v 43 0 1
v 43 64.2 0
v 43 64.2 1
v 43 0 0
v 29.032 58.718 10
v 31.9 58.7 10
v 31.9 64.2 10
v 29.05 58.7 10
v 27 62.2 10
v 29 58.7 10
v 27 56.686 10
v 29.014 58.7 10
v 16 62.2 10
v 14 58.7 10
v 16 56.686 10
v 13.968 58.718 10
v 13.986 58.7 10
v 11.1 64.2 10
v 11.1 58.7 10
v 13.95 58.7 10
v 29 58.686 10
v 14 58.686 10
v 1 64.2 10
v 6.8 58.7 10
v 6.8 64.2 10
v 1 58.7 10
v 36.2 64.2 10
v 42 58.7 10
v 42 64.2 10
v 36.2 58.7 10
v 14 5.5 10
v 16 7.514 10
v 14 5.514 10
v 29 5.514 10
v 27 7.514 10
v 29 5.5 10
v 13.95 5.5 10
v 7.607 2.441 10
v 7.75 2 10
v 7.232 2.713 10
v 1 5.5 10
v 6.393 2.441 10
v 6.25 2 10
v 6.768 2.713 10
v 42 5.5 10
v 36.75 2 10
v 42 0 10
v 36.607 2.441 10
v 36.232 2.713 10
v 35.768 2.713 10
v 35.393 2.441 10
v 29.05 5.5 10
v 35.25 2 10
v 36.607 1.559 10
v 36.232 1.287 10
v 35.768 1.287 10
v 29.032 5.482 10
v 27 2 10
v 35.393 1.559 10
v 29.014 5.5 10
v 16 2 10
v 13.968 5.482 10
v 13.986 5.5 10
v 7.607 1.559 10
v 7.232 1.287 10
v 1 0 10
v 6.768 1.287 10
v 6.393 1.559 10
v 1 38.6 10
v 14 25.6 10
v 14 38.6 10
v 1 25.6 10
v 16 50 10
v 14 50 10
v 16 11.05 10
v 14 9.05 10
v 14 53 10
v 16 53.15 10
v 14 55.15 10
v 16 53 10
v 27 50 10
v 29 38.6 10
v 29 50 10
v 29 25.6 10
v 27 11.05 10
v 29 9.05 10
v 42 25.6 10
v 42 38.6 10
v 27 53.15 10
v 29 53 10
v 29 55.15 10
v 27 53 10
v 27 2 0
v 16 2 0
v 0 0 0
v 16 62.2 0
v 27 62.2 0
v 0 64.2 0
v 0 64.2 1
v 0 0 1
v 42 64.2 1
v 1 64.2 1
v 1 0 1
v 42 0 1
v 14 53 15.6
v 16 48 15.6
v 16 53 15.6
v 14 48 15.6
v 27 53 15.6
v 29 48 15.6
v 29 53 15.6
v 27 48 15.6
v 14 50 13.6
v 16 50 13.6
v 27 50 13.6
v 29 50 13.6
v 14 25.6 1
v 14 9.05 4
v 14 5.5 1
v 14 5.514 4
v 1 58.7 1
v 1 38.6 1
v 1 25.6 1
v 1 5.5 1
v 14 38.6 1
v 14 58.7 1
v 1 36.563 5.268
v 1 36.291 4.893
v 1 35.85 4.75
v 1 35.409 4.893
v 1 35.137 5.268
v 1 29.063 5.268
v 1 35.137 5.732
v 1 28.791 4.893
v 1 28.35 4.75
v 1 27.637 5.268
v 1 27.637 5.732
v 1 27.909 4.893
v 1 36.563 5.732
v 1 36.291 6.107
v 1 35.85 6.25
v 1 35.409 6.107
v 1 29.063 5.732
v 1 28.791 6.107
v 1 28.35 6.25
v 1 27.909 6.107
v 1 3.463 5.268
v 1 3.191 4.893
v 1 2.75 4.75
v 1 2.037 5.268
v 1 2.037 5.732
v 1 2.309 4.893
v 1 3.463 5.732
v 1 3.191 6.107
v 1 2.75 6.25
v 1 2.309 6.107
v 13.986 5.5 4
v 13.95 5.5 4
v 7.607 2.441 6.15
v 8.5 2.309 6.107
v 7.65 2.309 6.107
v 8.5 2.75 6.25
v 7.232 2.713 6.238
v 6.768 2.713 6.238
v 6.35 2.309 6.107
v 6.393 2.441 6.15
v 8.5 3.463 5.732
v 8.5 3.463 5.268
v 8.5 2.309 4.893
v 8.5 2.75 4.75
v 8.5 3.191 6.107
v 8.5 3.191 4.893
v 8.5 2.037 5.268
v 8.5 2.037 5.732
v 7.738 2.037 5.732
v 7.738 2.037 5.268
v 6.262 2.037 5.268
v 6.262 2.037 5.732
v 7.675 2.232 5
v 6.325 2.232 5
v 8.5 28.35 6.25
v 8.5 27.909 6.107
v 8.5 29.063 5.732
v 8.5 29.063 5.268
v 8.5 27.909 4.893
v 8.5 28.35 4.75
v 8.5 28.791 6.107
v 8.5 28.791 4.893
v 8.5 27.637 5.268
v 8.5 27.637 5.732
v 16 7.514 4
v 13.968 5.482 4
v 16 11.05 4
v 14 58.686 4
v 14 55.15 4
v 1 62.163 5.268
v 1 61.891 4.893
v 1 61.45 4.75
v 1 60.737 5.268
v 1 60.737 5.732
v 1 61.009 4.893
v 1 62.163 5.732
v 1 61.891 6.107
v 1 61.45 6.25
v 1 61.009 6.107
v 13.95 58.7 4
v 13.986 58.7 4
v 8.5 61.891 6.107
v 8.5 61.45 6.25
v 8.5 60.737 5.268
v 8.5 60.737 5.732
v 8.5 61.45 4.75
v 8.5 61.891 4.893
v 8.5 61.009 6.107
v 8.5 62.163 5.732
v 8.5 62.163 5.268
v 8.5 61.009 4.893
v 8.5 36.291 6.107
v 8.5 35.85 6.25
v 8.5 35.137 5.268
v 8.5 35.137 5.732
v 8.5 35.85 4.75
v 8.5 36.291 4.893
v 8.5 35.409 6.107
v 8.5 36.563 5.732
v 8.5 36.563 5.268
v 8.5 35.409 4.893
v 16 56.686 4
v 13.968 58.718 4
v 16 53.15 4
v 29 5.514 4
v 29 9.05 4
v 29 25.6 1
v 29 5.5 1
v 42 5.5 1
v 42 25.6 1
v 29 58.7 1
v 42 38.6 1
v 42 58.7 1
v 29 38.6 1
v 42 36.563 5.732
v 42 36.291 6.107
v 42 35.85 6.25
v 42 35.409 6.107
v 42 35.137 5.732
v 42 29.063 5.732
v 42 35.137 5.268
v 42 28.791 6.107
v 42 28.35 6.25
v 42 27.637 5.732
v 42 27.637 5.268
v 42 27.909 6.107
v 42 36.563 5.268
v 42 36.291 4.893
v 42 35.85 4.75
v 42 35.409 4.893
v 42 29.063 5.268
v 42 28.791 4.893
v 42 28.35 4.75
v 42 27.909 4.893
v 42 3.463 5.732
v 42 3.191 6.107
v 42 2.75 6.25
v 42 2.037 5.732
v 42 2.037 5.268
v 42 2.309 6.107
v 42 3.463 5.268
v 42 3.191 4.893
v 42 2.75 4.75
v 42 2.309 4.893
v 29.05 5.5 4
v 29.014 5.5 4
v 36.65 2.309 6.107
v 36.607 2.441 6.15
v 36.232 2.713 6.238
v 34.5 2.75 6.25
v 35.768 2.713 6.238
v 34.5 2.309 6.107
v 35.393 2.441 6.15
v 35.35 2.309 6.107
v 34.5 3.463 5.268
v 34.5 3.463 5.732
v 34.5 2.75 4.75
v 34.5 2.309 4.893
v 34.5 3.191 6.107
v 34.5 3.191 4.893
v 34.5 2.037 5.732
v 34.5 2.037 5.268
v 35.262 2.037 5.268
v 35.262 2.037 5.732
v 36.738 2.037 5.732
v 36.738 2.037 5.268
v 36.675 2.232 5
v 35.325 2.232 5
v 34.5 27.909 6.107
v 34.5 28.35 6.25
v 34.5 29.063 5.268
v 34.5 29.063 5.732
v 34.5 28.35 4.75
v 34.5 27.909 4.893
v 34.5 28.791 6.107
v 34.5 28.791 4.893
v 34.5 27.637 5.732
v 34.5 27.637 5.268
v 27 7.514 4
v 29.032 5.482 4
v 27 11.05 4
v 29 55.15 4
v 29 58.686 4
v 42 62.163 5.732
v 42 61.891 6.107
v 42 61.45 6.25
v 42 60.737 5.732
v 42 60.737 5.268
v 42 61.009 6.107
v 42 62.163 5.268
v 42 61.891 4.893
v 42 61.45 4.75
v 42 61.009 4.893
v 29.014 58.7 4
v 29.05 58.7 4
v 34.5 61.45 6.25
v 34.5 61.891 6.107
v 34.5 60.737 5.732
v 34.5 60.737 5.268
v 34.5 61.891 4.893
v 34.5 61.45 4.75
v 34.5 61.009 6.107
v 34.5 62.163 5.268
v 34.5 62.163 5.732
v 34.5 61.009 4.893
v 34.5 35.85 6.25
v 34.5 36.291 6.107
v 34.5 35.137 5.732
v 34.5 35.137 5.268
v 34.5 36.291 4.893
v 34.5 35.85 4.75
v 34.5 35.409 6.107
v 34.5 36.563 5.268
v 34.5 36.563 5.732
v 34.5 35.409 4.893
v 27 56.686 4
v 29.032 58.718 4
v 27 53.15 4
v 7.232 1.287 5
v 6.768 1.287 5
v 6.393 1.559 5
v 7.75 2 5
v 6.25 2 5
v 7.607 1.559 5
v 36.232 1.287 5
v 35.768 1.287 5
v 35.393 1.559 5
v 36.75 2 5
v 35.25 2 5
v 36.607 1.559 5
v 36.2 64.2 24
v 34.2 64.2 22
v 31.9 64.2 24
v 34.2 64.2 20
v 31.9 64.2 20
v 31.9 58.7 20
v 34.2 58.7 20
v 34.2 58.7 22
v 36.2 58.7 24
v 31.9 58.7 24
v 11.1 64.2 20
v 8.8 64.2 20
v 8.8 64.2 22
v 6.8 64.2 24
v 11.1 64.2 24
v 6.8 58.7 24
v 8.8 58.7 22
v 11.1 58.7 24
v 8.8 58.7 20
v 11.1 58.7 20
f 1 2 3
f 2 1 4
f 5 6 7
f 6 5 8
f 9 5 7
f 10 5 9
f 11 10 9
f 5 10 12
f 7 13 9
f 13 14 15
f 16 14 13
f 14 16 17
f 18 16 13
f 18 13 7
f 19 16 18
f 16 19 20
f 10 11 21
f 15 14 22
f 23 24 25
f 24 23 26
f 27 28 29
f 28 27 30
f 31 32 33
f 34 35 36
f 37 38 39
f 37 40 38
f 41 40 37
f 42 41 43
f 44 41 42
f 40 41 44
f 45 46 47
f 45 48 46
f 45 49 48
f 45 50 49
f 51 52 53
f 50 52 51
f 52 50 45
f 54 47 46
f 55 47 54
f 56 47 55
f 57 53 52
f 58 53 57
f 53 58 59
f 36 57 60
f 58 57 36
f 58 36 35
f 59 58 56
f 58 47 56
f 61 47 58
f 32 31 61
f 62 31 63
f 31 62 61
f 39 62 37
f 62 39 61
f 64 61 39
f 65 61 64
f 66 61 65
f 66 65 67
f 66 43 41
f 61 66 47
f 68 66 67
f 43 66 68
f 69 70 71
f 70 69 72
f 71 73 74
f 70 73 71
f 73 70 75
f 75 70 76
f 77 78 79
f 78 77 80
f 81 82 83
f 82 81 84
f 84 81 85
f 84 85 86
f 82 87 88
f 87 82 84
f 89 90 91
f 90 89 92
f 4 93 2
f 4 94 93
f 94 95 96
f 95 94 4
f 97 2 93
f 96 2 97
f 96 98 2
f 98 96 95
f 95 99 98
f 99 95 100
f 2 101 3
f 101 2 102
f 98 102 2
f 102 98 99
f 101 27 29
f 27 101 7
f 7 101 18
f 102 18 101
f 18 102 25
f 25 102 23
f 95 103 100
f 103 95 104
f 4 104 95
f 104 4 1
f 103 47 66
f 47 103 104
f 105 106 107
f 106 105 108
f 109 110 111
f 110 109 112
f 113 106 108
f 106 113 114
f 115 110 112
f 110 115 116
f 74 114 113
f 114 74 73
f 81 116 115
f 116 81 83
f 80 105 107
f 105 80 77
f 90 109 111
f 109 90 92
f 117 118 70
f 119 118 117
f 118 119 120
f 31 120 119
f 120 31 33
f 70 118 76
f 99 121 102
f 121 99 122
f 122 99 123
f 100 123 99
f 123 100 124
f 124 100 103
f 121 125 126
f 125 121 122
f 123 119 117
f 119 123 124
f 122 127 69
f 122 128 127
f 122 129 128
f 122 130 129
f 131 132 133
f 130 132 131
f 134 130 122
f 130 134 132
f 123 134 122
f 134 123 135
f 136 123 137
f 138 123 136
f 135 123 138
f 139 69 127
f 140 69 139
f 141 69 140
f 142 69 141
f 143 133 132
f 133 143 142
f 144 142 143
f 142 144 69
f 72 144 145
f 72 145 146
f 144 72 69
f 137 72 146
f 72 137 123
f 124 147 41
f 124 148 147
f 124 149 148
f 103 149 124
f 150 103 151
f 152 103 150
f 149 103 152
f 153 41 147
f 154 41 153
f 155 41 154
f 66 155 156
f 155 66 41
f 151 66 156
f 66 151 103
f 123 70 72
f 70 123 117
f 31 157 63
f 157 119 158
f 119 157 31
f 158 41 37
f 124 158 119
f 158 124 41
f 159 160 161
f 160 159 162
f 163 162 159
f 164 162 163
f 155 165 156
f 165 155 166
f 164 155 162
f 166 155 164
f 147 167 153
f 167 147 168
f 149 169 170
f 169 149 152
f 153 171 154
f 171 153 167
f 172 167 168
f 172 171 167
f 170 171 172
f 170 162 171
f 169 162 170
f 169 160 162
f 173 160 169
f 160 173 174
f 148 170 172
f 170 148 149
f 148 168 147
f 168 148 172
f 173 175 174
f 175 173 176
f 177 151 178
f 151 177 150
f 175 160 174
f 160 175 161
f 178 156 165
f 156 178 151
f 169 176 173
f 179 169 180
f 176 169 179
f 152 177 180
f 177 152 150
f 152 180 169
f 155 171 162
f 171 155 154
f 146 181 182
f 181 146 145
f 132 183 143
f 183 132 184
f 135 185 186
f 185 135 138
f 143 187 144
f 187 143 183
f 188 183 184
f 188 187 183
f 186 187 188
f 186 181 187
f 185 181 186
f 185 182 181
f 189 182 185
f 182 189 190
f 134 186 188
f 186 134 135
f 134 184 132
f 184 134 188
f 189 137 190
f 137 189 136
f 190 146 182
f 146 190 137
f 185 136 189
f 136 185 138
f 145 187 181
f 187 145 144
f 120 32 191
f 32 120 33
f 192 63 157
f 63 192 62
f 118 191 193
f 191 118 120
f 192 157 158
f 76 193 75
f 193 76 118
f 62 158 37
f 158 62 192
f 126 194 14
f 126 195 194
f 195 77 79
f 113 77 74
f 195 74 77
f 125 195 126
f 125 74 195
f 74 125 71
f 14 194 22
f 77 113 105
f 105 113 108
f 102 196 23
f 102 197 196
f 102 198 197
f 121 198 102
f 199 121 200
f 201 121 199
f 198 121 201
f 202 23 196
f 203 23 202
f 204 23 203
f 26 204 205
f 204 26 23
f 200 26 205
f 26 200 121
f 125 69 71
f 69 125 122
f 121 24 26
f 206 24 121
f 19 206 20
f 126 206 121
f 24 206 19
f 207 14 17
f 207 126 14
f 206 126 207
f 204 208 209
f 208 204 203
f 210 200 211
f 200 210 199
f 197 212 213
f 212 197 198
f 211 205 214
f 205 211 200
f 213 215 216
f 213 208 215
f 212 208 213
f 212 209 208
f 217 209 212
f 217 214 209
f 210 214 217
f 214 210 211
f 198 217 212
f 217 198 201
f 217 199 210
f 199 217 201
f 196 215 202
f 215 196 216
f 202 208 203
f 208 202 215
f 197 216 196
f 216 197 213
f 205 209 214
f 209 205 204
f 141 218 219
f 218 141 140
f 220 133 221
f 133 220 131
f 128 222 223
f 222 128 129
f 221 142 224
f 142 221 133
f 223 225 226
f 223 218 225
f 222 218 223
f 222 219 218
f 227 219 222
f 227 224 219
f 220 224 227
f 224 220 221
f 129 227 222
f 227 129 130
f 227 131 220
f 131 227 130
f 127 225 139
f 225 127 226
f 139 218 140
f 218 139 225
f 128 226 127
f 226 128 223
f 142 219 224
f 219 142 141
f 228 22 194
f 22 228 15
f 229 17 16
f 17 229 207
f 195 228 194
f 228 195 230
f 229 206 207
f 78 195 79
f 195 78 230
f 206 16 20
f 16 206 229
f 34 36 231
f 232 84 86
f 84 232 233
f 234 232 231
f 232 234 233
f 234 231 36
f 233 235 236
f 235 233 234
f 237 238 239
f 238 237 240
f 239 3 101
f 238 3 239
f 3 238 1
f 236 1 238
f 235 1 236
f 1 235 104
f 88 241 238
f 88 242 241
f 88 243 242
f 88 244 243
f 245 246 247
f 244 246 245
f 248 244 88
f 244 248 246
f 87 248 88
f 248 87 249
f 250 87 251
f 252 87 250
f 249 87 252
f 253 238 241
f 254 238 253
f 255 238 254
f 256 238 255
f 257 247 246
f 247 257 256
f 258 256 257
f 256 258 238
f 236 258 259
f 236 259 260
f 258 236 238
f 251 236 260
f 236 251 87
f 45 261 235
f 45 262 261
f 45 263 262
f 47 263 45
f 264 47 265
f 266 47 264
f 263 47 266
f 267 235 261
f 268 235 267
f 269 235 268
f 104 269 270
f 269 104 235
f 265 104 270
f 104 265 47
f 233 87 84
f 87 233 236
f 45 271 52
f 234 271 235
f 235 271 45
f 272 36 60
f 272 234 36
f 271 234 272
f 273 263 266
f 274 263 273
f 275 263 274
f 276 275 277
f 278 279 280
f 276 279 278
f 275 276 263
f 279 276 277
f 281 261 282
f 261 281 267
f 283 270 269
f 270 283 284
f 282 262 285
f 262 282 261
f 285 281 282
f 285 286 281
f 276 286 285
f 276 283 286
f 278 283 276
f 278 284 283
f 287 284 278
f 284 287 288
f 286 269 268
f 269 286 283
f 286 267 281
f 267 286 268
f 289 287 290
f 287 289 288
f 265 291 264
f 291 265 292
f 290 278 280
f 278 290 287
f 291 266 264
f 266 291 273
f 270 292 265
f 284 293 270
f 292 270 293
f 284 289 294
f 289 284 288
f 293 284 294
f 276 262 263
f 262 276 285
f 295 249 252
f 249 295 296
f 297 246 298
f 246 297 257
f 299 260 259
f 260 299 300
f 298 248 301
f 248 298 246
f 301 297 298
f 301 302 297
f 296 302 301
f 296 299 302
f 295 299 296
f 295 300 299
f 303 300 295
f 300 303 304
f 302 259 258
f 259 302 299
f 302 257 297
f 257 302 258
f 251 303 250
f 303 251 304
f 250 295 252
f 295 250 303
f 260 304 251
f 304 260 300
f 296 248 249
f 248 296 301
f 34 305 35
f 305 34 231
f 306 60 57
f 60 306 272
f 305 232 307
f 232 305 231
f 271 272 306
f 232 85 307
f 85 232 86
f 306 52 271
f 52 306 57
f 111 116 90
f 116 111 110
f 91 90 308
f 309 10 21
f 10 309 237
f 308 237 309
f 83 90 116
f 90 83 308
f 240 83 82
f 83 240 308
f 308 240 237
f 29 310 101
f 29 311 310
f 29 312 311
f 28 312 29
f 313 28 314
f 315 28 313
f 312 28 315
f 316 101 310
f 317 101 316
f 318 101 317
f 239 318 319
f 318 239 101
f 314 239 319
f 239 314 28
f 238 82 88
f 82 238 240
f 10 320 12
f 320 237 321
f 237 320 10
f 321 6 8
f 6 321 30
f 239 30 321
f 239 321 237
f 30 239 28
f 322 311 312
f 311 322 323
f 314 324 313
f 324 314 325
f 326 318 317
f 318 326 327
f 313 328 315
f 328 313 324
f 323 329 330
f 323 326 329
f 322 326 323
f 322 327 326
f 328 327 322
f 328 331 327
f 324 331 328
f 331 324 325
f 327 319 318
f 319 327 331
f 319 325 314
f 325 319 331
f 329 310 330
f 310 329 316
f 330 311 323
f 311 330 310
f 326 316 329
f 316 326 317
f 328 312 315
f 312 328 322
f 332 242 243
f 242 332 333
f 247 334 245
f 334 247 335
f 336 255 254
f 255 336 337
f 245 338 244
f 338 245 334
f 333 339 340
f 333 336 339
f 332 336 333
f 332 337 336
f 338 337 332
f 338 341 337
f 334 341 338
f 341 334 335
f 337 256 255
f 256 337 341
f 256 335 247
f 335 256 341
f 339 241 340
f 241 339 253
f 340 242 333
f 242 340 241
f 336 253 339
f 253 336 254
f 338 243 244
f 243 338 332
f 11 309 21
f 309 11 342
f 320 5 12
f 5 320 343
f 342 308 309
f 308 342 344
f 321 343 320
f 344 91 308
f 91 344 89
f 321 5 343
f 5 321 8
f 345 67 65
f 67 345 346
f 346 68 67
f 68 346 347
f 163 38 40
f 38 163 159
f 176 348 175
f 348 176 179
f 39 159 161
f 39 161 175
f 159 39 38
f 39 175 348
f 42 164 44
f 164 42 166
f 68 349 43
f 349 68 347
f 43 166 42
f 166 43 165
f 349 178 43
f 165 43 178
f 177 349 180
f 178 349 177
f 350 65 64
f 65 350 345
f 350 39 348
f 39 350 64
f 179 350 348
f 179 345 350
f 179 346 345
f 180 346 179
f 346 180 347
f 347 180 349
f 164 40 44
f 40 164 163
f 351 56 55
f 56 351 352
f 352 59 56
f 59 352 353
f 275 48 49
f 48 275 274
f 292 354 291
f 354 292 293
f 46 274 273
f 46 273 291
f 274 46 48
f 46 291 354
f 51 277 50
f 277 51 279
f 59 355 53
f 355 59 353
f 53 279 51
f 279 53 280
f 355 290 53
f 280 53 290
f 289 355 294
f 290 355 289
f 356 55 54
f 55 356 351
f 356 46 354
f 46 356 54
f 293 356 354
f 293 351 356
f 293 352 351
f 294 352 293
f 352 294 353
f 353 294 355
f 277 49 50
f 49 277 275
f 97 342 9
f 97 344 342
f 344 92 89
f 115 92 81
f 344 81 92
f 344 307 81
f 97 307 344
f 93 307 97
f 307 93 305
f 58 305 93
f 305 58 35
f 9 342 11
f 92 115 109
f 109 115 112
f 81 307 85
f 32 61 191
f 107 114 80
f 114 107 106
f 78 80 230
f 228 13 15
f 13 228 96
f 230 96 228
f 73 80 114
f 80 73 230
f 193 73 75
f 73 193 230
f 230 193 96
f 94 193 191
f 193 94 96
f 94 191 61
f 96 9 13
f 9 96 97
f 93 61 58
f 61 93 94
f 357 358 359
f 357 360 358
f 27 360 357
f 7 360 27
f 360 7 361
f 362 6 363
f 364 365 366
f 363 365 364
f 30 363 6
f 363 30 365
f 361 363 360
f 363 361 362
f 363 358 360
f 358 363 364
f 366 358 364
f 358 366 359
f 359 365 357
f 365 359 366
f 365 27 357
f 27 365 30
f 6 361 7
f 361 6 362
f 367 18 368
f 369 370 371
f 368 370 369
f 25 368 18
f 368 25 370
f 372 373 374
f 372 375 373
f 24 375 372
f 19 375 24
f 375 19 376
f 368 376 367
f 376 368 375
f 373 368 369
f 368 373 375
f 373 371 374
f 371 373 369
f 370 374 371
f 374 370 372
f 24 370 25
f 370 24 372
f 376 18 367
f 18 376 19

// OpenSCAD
// frame for short four-legged robot (dimensions for pyboard hardware)
// History:
// v1: Fusion360, check 01_trivial dir
// v2: openscad: 
//     - inverted servos support
//     - solid holder for IMU unit

// servo motor GH-S37A
SERVO_WIDTH = 13;
SERVO_LENGTH = 20.1;
SERVO_THICK = 9;
SERVO_EARS_LENGTH = 5.5;
SERVO_EARS_THICK = 1;
SERVO_HOLE_LENGTH = 7.5;
SERVO_HOLE_D = 1.5;
SERVO_WIRE_THICK = 2.5;
SERVO_WIRE_LENGTH = 10;

module servo(up_extrude = 1) {
    cube([SERVO_WIDTH, SERVO_LENGTH, SERVO_THICK*up_extrude]);
    translate([-SERVO_EARS_THICK, -SERVO_EARS_LENGTH, 0])
    cube([SERVO_EARS_THICK, (SERVO_EARS_LENGTH+0.6)*2 + SERVO_LENGTH, SERVO_THICK*up_extrude]);

    translate([-SERVO_EARS_THICK*2, -(SERVO_EARS_LENGTH)/2, SERVO_THICK/2])
    rotate([0, 90, 0])
    cylinder(SERVO_HOLE_LENGTH + SERVO_EARS_THICK*2, d=SERVO_HOLE_D, $fn=10);

    translate([-SERVO_EARS_THICK*2, SERVO_LENGTH + SERVO_EARS_LENGTH/2, SERVO_THICK/2])
    rotate([0, 90, 0])
    cylinder(SERVO_HOLE_LENGTH + SERVO_EARS_THICK*2, d=SERVO_HOLE_D, $fn=10);
    
    // cable
    translate([SERVO_WIDTH-SERVO_WIRE_THICK+0.7, SERVO_WIRE_THICK/2+.5, SERVO_THICK/3])
    rotate([0, 0, -45])
    cube([SERVO_WIRE_THICK, SERVO_WIRE_LENGTH, SERVO_THICK*2]);
}


BOARD_LENGTH = 50;
BOARD_WIDTH = 33;
BOARD_THICK = 1.6 + 2;
BOARD_HOLE_OFS = 2;

module board(up_extrude = 1) {
    cube([BOARD_WIDTH, BOARD_LENGTH, BOARD_THICK*up_extrude]);
}

// Frame base with servo and board placement
BASE_X_BOARD_SPACE = 5;
BASE_SERVO_DIST = 1;
BASE_LENGTH = (SERVO_LENGTH+2*SERVO_EARS_LENGTH+BASE_SERVO_DIST)*2;
BASE_WIDTH = BOARD_WIDTH + BASE_X_BOARD_SPACE*2;
BASE_THICK = 10;
BASE_UNDER_SERVO_DIM = 1;
BASE_BOARD_Z_OFS = BASE_THICK + 2;
BASE_INNER_THICK = 2;
BOARD_SCREW_DEPTH = 5;
BOARD_SCREW_D = 1.5;

HOLDER_LENGTH = 3;
HOLDER_EXTRA = 2;
HOLDER_THICK = BOARD_THICK + HOLDER_EXTRA;


//                translate([0, BOARD_LENGTH, BASE_THICK])
//                cube([BASE_WIDTH, BOARD_HOLDER_LENGTH, BOARD_HOLDER_THICK]);

module board_holder() {
    rotate([90, 0, 90])
    linear_extrude(BASE_WIDTH)
    polygon(points=[
        [0, 0], [HOLDER_LENGTH, 0], [HOLDER_LENGTH, HOLDER_THICK],
        [-HOLDER_EXTRA, HOLDER_THICK], [0, HOLDER_THICK - HOLDER_EXTRA]
    ]);
}


module frame_base() {
    difference() {
        union() {
            cube([BASE_WIDTH, BASE_LENGTH, BASE_THICK]);
            
            // board holder
            translate([0, BOARD_LENGTH, BASE_THICK])
            board_holder();
        }
        
        translate([SERVO_EARS_THICK, SERVO_EARS_LENGTH, BASE_UNDER_SERVO_DIM])
        servo(up_extrude=3);
        
        translate([SERVO_EARS_THICK, BASE_LENGTH-SERVO_EARS_LENGTH, BASE_UNDER_SERVO_DIM])
        mirror([0, 1, 0])
        servo(up_extrude=3);

        translate([BASE_WIDTH, 0, 0])
        mirror([1, 0, 0]) {
            translate([SERVO_EARS_THICK, SERVO_EARS_LENGTH, BASE_UNDER_SERVO_DIM])
            servo(up_extrude=3);
            mirror([0, 1, 0])
            translate([SERVO_EARS_THICK, -BASE_LENGTH+SERVO_EARS_LENGTH, BASE_UNDER_SERVO_DIM])
            servo(up_extrude=3);
        }        
        
        translate([SERVO_WIDTH + SERVO_EARS_THICK + BASE_INNER_THICK, BASE_INNER_THICK, 0])
        cube([BASE_WIDTH - SERVO_WIDTH*2 - SERVO_EARS_THICK*2 - BASE_INNER_THICK*2, 
              BASE_LENGTH - BASE_INNER_THICK*2, BASE_THICK + HOLDER_THICK]);

        // board screw holes
        translate([BASE_X_BOARD_SPACE, 0, BASE_THICK - BOARD_SCREW_DEPTH]) {
            translate([BOARD_HOLE_OFS, BOARD_HOLE_OFS, 0])
            cylinder(BOARD_SCREW_DEPTH, d=BOARD_SCREW_D, $fn=10);
            translate([BOARD_WIDTH-BOARD_HOLE_OFS, BOARD_HOLE_OFS, 0])
            cylinder(BOARD_SCREW_DEPTH, d=BOARD_SCREW_D, $fn=10);
        }
    }
        
    
}

module imu_holder(thickness) {
    // grip offsets
    linear_extrude(thickness)
    polygon([
        [4.3, 0], 
        [4.3, 10],
        [2.0, 10], [2.0, 12], 
        [4.3, 14], [0.0, 14],
        [0.0, 0], 
    ]);
}

IMU_WIDTH = 25.4;
IMU_LENGTH = 25.6;
IMU_THICK = 1.7;

module imu_board() {
    x_ofs = (BASE_WIDTH - IMU_WIDTH)/2;
    y_ofs = (BASE_LENGTH - IMU_LENGTH)/2;
    
//    translate([x_ofs, y_ofs, 34])
    translate([2, 0, 0])
    cube([IMU_WIDTH, IMU_LENGTH, IMU_THICK]);
}


module imu_holders() {
    translate([IMU_WIDTH+4, 0, 0])
    mirror([1, 0, 0])
    rotate([90, 0, 0])
    imu_holder(SERVO_EARS_LENGTH);

    rotate([90, 0, 0])
    imu_holder(SERVO_EARS_LENGTH);
}

//imu_board();

//servo();
frame_base();

translate([(BASE_WIDTH - IMU_WIDTH-4)/2, BASE_LENGTH, BASE_THICK])
imu_holders();

//translate([BASE_X_BOARD_SPACE, 0, BASE_THICK])
//board();

//board_holder();
